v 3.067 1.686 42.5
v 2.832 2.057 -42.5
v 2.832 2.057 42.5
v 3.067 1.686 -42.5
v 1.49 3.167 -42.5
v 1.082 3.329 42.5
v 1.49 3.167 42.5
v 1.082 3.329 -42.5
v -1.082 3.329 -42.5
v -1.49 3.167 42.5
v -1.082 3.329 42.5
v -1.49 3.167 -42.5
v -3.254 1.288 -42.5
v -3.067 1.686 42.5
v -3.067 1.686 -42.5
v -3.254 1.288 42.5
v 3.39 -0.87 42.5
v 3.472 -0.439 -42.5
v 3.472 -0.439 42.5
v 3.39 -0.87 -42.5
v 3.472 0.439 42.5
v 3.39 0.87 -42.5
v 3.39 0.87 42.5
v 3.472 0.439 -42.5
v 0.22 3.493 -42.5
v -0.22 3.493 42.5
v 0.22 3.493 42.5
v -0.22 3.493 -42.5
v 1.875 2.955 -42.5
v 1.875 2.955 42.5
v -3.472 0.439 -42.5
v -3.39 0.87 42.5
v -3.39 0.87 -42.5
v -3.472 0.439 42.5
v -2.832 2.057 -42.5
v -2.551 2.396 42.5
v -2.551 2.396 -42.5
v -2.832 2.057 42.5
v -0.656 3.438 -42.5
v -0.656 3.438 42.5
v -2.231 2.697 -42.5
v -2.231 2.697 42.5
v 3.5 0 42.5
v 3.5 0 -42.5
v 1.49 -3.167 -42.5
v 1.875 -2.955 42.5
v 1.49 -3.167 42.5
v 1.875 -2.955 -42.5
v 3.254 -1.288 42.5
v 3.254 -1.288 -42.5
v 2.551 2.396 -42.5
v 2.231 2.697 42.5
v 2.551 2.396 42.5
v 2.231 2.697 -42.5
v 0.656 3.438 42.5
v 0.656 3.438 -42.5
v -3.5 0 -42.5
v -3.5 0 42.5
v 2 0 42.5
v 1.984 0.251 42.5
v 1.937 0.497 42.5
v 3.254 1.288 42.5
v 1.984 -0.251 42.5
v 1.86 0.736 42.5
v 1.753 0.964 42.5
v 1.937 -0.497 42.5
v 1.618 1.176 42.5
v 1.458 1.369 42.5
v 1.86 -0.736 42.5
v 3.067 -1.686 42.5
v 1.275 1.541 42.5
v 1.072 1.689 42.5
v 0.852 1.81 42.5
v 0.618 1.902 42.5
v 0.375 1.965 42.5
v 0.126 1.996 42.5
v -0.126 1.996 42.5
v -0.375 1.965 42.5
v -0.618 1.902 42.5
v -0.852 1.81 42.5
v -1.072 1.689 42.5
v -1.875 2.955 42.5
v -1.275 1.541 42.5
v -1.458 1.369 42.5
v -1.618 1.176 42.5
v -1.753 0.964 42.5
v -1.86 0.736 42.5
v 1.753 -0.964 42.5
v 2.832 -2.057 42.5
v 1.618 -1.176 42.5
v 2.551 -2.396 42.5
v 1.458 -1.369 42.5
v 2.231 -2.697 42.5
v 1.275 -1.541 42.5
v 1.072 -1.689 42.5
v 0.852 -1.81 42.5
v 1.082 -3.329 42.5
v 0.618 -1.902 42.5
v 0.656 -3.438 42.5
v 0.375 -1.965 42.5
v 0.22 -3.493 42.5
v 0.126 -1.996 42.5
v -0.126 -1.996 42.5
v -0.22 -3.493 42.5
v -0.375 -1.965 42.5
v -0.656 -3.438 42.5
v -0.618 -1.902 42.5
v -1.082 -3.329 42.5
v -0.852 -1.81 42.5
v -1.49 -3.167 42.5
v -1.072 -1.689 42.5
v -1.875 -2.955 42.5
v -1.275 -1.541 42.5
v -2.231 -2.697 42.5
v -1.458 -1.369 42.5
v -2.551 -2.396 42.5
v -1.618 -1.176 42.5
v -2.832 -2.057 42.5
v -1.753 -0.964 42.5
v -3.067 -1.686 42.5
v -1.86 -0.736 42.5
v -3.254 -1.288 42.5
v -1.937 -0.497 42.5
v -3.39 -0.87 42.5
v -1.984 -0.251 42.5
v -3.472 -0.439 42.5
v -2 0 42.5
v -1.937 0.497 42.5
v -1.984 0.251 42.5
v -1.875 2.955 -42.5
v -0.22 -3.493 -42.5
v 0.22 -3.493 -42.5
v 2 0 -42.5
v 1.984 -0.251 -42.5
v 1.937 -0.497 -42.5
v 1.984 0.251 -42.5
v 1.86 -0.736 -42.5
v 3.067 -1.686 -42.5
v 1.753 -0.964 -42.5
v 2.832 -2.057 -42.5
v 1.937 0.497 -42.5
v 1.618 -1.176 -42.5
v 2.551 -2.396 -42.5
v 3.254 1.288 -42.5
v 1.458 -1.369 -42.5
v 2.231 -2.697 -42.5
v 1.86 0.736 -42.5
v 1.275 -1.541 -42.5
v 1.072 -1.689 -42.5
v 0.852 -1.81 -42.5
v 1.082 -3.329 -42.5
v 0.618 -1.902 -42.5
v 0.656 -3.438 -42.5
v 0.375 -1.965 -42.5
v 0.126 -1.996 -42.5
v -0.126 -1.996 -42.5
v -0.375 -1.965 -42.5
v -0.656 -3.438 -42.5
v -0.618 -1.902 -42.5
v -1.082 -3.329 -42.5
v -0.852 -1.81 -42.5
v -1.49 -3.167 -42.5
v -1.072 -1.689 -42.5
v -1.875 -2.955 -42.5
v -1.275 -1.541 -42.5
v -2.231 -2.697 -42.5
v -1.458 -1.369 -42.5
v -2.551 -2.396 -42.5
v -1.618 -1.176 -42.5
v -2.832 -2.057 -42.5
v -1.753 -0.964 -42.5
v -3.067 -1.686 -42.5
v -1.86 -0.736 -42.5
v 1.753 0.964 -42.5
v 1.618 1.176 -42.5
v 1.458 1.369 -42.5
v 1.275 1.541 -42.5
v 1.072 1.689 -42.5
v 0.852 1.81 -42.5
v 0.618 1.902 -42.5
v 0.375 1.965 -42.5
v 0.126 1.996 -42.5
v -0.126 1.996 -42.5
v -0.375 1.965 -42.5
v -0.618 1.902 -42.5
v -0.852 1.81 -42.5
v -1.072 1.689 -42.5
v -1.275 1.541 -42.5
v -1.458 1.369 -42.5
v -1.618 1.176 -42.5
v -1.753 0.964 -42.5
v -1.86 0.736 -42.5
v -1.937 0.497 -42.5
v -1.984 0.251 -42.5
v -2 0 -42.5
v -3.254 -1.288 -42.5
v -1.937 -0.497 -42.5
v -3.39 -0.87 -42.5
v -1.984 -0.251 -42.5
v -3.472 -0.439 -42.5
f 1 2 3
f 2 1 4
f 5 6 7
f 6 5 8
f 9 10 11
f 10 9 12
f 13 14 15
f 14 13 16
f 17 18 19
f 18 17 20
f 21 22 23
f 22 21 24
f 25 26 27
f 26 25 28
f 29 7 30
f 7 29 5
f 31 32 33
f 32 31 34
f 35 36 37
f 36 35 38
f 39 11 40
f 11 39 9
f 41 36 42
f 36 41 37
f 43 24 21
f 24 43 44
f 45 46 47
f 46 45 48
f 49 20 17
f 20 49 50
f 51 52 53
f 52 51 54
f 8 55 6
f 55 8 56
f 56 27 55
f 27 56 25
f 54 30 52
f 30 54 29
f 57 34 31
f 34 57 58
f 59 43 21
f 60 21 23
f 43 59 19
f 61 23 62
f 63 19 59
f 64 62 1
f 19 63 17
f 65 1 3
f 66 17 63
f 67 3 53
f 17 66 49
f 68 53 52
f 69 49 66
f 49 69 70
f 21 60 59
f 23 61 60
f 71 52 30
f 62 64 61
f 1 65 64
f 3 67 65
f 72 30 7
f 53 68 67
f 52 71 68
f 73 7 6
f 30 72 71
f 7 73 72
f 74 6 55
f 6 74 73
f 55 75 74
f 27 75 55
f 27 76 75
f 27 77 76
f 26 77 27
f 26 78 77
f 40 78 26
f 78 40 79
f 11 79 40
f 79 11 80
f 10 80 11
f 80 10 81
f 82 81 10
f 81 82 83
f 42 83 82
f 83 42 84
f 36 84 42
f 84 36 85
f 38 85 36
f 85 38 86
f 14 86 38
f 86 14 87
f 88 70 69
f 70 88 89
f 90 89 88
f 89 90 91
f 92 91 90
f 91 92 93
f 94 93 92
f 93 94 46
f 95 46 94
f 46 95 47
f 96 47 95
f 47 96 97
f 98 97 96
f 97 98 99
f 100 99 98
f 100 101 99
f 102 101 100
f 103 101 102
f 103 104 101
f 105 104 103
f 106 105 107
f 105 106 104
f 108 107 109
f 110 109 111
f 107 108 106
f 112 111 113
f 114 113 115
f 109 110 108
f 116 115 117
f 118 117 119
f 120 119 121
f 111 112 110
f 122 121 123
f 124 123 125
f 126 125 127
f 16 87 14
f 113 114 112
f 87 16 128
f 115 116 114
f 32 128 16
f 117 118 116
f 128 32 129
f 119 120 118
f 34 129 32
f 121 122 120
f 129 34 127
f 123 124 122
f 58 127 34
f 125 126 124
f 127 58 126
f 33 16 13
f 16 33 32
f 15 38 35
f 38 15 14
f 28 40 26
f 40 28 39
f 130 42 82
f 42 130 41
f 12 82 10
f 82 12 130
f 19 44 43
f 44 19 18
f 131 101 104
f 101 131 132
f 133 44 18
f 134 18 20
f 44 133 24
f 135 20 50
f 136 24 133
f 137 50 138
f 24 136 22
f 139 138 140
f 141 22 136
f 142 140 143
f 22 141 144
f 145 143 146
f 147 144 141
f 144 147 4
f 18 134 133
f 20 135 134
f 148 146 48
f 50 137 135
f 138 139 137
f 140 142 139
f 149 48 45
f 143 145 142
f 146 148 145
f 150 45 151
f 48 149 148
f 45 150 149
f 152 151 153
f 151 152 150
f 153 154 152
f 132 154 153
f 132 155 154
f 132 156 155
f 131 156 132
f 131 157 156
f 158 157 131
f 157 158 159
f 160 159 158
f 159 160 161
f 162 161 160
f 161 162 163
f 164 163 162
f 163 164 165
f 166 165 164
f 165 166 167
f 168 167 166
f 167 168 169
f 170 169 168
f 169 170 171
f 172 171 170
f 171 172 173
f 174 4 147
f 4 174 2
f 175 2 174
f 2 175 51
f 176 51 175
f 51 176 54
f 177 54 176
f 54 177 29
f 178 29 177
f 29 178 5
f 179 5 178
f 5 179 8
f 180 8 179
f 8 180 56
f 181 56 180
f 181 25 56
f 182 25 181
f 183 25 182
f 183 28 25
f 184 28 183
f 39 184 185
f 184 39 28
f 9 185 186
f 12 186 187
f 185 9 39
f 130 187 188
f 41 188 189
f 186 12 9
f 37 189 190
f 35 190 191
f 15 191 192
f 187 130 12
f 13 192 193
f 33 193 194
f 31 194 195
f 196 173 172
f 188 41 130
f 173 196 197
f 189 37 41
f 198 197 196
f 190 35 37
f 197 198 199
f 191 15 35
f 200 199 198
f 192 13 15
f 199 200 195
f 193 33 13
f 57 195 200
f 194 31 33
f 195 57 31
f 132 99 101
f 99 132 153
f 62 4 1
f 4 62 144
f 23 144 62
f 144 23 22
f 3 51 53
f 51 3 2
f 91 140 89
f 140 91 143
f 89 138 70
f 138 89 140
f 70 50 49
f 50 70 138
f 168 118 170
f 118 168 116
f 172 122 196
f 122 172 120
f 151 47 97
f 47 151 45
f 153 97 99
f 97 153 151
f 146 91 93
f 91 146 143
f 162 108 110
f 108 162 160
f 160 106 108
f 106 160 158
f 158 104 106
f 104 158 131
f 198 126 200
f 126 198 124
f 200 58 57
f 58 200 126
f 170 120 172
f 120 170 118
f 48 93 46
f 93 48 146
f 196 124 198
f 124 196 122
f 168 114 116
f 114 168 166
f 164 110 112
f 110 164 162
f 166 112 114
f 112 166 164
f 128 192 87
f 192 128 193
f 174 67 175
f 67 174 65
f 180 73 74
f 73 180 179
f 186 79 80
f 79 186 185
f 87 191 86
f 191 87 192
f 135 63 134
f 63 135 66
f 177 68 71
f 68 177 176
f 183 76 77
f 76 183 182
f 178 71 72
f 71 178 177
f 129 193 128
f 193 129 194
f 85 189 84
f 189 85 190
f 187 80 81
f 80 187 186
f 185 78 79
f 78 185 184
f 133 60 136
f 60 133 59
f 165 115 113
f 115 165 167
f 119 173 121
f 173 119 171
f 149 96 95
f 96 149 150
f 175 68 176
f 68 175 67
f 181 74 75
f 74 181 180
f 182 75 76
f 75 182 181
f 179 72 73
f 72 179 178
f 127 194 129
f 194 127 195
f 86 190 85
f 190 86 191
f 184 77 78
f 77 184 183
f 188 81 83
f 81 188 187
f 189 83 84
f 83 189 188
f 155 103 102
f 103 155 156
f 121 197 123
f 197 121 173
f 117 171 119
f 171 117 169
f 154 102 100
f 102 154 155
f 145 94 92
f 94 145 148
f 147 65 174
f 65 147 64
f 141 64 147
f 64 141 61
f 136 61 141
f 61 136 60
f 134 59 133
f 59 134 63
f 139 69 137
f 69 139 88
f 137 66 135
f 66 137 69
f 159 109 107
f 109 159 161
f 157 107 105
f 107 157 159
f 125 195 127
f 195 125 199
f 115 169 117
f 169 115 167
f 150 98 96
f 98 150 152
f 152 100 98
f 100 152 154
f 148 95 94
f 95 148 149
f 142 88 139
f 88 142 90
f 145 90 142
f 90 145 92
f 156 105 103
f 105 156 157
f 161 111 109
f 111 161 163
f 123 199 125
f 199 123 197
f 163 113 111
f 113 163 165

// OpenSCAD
$fn = 50;


difference() {
	union() {
		translate(v = [0, 0, -42.5000000000]) {
			cylinder(h = 85, r = 3.5000000000);
		}
	}
	union() {
		translate(v = [0, 0, -100.0000000000]) {
			cylinder(h = 200, r = 2);
		}
	}
}
